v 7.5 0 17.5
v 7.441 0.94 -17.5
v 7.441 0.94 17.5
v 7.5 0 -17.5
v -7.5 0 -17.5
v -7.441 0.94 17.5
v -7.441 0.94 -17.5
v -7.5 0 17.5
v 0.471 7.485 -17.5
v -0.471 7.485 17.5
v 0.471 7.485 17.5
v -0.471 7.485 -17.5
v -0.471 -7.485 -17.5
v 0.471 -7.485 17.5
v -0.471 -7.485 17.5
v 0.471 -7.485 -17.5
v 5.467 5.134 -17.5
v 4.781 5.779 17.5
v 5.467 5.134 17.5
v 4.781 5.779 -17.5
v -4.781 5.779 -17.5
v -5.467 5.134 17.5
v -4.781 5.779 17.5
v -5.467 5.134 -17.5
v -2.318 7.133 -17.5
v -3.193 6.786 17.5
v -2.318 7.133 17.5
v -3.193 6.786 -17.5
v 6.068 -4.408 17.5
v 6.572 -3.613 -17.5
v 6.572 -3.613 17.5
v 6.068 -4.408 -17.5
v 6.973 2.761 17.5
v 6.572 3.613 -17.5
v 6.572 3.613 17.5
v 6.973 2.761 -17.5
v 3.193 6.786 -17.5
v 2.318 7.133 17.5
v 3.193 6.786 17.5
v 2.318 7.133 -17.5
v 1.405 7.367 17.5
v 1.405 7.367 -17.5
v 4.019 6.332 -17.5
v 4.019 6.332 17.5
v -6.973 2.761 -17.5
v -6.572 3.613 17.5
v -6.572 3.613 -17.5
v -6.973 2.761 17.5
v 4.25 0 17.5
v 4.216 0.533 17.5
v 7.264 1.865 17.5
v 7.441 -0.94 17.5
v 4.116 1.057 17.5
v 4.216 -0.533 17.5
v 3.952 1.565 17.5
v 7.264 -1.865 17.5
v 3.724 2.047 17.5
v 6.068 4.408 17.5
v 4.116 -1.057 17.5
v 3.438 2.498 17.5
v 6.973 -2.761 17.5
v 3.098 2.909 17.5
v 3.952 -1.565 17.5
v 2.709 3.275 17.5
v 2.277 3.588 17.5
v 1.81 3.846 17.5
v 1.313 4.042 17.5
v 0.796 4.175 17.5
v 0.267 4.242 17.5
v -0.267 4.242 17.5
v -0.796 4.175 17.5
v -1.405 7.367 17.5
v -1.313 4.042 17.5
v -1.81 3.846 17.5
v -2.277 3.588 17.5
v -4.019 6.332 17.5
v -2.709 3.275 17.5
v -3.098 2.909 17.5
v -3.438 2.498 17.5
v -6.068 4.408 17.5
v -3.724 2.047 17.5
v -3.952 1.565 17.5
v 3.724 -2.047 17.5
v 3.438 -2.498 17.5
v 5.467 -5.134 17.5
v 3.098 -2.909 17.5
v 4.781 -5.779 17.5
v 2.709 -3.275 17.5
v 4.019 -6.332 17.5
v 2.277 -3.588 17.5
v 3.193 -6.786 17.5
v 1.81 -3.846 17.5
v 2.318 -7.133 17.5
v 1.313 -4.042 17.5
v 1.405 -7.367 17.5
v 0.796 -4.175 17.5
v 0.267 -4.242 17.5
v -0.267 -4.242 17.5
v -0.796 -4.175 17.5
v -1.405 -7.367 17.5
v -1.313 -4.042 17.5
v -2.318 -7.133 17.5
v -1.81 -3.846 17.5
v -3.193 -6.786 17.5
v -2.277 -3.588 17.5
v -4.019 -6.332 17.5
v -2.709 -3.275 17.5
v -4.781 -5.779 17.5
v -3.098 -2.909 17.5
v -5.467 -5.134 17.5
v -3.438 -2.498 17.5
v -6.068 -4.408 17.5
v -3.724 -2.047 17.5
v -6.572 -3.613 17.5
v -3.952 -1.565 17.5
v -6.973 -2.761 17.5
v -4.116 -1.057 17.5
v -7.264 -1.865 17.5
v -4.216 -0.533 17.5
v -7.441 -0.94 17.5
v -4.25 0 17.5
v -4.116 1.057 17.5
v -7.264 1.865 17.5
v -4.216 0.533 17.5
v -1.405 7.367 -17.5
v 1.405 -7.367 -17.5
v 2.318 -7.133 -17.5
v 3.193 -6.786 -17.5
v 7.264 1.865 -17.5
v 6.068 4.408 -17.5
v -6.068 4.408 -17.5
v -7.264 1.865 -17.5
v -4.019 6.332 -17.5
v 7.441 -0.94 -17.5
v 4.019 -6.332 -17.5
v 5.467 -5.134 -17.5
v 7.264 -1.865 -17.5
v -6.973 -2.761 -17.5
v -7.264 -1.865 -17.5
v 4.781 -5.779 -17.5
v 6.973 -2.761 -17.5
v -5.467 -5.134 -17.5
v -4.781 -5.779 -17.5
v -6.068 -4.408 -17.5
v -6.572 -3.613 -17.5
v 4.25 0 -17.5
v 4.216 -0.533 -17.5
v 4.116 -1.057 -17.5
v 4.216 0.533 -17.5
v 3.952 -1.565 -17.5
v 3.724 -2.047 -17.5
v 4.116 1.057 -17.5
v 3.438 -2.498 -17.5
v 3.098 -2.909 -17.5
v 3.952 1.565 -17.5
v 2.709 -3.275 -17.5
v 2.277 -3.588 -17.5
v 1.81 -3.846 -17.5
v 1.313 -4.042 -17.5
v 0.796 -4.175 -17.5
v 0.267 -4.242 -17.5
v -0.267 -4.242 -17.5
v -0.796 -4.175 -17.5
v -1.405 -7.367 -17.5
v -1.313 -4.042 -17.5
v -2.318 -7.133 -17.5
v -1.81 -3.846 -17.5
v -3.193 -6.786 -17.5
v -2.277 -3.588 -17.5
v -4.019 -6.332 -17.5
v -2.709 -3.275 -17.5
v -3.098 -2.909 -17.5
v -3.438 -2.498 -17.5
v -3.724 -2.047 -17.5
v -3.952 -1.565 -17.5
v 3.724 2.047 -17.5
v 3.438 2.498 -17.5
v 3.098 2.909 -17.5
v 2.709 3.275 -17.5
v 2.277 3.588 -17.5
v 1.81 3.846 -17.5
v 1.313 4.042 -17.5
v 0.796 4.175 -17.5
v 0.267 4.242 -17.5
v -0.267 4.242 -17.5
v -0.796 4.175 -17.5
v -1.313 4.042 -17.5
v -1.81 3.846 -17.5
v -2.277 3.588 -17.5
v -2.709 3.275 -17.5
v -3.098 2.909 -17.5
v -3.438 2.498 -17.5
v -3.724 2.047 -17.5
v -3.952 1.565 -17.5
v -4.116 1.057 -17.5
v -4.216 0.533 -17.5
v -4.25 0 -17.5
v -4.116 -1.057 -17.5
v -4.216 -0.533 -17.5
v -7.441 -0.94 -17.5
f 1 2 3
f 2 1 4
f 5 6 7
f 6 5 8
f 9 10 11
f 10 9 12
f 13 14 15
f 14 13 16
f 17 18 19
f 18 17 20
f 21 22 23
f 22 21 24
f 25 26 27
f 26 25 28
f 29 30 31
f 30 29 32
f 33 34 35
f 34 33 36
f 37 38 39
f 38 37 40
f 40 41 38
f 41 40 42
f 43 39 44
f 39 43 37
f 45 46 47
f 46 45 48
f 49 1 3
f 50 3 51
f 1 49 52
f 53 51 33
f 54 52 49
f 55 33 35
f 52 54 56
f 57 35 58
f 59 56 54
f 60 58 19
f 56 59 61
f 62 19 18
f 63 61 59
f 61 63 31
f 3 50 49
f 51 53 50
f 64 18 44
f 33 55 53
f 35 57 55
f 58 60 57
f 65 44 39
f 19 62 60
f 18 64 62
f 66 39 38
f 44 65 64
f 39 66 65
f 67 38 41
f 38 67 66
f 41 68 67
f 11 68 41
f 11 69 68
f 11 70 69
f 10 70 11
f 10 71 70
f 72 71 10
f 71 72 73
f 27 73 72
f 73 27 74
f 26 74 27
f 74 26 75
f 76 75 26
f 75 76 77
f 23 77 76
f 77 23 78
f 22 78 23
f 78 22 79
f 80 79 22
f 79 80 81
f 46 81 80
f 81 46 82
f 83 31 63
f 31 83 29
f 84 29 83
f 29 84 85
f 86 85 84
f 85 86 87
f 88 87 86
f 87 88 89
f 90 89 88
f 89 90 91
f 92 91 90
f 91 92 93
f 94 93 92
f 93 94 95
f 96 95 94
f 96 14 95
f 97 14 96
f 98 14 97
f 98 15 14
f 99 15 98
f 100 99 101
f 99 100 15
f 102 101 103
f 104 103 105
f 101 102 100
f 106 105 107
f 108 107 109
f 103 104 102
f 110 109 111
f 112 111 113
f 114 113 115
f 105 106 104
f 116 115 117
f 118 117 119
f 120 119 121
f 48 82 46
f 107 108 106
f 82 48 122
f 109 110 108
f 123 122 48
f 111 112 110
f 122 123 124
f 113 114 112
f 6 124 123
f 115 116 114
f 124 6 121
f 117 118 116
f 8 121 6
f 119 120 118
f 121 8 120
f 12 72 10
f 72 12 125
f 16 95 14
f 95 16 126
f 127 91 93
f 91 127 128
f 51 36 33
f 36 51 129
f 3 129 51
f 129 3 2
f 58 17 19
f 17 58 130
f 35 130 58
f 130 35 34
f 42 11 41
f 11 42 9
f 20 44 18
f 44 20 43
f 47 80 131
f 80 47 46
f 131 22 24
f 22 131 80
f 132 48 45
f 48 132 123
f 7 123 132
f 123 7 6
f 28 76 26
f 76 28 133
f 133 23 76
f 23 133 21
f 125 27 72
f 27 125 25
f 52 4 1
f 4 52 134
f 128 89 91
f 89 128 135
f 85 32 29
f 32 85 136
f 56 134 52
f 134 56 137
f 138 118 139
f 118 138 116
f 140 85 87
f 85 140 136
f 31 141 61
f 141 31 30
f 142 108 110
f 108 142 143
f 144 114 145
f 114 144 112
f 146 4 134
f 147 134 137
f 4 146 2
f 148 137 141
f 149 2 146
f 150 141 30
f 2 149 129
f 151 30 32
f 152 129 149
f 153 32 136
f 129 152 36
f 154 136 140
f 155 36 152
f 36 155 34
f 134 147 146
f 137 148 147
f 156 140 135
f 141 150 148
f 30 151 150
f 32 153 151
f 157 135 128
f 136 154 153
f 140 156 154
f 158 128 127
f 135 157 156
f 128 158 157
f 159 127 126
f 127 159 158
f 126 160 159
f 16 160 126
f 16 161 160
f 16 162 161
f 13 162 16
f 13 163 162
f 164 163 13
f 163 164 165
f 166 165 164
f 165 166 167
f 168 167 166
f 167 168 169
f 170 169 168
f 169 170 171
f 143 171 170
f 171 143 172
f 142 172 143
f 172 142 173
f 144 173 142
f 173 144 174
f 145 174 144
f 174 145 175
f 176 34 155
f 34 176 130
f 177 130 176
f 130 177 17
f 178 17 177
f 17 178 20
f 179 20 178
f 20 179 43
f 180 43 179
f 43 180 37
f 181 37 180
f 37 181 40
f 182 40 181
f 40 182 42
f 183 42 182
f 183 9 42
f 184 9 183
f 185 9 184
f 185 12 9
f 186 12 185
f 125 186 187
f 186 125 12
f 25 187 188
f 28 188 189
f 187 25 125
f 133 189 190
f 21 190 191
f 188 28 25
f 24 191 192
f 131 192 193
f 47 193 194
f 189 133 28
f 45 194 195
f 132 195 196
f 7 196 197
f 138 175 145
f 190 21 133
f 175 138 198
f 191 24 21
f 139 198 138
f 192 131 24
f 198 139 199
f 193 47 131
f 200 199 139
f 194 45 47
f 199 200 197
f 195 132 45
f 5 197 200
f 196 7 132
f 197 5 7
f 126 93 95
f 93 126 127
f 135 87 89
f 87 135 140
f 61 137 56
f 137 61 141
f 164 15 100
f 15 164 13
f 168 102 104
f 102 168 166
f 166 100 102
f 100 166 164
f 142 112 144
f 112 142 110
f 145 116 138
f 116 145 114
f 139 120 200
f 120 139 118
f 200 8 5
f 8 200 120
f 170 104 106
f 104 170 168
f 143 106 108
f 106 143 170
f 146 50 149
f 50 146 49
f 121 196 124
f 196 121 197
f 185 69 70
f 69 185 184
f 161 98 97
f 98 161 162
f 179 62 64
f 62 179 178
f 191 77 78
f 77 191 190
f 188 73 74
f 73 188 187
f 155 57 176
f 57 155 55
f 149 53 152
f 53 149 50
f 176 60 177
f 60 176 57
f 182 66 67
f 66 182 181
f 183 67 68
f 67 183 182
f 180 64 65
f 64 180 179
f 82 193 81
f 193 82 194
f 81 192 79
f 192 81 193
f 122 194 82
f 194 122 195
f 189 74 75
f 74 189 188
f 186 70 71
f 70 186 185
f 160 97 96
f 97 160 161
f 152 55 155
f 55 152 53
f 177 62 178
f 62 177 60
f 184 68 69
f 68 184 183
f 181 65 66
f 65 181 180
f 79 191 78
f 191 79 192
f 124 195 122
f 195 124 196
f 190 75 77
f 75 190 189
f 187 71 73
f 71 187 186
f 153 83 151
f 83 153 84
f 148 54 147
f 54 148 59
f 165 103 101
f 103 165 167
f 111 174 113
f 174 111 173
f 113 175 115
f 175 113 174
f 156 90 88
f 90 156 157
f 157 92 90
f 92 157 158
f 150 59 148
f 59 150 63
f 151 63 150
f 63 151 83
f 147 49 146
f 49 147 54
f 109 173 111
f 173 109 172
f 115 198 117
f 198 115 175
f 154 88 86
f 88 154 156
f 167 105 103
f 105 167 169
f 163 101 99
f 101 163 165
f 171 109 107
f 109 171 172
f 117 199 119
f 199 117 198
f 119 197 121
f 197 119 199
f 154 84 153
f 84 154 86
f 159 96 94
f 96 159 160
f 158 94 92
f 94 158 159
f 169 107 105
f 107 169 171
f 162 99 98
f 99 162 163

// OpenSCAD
$fn = 50;


difference() {
	union() {
		translate(v = [0, 0, -17.5000000000]) {
			cylinder(h = 35, r = 7.5000000000);
		}
	}
	union() {
		translate(v = [0, 0, -100.0000000000]) {
			cylinder(h = 200, r = 4.2500000000);
		}
	}
}
